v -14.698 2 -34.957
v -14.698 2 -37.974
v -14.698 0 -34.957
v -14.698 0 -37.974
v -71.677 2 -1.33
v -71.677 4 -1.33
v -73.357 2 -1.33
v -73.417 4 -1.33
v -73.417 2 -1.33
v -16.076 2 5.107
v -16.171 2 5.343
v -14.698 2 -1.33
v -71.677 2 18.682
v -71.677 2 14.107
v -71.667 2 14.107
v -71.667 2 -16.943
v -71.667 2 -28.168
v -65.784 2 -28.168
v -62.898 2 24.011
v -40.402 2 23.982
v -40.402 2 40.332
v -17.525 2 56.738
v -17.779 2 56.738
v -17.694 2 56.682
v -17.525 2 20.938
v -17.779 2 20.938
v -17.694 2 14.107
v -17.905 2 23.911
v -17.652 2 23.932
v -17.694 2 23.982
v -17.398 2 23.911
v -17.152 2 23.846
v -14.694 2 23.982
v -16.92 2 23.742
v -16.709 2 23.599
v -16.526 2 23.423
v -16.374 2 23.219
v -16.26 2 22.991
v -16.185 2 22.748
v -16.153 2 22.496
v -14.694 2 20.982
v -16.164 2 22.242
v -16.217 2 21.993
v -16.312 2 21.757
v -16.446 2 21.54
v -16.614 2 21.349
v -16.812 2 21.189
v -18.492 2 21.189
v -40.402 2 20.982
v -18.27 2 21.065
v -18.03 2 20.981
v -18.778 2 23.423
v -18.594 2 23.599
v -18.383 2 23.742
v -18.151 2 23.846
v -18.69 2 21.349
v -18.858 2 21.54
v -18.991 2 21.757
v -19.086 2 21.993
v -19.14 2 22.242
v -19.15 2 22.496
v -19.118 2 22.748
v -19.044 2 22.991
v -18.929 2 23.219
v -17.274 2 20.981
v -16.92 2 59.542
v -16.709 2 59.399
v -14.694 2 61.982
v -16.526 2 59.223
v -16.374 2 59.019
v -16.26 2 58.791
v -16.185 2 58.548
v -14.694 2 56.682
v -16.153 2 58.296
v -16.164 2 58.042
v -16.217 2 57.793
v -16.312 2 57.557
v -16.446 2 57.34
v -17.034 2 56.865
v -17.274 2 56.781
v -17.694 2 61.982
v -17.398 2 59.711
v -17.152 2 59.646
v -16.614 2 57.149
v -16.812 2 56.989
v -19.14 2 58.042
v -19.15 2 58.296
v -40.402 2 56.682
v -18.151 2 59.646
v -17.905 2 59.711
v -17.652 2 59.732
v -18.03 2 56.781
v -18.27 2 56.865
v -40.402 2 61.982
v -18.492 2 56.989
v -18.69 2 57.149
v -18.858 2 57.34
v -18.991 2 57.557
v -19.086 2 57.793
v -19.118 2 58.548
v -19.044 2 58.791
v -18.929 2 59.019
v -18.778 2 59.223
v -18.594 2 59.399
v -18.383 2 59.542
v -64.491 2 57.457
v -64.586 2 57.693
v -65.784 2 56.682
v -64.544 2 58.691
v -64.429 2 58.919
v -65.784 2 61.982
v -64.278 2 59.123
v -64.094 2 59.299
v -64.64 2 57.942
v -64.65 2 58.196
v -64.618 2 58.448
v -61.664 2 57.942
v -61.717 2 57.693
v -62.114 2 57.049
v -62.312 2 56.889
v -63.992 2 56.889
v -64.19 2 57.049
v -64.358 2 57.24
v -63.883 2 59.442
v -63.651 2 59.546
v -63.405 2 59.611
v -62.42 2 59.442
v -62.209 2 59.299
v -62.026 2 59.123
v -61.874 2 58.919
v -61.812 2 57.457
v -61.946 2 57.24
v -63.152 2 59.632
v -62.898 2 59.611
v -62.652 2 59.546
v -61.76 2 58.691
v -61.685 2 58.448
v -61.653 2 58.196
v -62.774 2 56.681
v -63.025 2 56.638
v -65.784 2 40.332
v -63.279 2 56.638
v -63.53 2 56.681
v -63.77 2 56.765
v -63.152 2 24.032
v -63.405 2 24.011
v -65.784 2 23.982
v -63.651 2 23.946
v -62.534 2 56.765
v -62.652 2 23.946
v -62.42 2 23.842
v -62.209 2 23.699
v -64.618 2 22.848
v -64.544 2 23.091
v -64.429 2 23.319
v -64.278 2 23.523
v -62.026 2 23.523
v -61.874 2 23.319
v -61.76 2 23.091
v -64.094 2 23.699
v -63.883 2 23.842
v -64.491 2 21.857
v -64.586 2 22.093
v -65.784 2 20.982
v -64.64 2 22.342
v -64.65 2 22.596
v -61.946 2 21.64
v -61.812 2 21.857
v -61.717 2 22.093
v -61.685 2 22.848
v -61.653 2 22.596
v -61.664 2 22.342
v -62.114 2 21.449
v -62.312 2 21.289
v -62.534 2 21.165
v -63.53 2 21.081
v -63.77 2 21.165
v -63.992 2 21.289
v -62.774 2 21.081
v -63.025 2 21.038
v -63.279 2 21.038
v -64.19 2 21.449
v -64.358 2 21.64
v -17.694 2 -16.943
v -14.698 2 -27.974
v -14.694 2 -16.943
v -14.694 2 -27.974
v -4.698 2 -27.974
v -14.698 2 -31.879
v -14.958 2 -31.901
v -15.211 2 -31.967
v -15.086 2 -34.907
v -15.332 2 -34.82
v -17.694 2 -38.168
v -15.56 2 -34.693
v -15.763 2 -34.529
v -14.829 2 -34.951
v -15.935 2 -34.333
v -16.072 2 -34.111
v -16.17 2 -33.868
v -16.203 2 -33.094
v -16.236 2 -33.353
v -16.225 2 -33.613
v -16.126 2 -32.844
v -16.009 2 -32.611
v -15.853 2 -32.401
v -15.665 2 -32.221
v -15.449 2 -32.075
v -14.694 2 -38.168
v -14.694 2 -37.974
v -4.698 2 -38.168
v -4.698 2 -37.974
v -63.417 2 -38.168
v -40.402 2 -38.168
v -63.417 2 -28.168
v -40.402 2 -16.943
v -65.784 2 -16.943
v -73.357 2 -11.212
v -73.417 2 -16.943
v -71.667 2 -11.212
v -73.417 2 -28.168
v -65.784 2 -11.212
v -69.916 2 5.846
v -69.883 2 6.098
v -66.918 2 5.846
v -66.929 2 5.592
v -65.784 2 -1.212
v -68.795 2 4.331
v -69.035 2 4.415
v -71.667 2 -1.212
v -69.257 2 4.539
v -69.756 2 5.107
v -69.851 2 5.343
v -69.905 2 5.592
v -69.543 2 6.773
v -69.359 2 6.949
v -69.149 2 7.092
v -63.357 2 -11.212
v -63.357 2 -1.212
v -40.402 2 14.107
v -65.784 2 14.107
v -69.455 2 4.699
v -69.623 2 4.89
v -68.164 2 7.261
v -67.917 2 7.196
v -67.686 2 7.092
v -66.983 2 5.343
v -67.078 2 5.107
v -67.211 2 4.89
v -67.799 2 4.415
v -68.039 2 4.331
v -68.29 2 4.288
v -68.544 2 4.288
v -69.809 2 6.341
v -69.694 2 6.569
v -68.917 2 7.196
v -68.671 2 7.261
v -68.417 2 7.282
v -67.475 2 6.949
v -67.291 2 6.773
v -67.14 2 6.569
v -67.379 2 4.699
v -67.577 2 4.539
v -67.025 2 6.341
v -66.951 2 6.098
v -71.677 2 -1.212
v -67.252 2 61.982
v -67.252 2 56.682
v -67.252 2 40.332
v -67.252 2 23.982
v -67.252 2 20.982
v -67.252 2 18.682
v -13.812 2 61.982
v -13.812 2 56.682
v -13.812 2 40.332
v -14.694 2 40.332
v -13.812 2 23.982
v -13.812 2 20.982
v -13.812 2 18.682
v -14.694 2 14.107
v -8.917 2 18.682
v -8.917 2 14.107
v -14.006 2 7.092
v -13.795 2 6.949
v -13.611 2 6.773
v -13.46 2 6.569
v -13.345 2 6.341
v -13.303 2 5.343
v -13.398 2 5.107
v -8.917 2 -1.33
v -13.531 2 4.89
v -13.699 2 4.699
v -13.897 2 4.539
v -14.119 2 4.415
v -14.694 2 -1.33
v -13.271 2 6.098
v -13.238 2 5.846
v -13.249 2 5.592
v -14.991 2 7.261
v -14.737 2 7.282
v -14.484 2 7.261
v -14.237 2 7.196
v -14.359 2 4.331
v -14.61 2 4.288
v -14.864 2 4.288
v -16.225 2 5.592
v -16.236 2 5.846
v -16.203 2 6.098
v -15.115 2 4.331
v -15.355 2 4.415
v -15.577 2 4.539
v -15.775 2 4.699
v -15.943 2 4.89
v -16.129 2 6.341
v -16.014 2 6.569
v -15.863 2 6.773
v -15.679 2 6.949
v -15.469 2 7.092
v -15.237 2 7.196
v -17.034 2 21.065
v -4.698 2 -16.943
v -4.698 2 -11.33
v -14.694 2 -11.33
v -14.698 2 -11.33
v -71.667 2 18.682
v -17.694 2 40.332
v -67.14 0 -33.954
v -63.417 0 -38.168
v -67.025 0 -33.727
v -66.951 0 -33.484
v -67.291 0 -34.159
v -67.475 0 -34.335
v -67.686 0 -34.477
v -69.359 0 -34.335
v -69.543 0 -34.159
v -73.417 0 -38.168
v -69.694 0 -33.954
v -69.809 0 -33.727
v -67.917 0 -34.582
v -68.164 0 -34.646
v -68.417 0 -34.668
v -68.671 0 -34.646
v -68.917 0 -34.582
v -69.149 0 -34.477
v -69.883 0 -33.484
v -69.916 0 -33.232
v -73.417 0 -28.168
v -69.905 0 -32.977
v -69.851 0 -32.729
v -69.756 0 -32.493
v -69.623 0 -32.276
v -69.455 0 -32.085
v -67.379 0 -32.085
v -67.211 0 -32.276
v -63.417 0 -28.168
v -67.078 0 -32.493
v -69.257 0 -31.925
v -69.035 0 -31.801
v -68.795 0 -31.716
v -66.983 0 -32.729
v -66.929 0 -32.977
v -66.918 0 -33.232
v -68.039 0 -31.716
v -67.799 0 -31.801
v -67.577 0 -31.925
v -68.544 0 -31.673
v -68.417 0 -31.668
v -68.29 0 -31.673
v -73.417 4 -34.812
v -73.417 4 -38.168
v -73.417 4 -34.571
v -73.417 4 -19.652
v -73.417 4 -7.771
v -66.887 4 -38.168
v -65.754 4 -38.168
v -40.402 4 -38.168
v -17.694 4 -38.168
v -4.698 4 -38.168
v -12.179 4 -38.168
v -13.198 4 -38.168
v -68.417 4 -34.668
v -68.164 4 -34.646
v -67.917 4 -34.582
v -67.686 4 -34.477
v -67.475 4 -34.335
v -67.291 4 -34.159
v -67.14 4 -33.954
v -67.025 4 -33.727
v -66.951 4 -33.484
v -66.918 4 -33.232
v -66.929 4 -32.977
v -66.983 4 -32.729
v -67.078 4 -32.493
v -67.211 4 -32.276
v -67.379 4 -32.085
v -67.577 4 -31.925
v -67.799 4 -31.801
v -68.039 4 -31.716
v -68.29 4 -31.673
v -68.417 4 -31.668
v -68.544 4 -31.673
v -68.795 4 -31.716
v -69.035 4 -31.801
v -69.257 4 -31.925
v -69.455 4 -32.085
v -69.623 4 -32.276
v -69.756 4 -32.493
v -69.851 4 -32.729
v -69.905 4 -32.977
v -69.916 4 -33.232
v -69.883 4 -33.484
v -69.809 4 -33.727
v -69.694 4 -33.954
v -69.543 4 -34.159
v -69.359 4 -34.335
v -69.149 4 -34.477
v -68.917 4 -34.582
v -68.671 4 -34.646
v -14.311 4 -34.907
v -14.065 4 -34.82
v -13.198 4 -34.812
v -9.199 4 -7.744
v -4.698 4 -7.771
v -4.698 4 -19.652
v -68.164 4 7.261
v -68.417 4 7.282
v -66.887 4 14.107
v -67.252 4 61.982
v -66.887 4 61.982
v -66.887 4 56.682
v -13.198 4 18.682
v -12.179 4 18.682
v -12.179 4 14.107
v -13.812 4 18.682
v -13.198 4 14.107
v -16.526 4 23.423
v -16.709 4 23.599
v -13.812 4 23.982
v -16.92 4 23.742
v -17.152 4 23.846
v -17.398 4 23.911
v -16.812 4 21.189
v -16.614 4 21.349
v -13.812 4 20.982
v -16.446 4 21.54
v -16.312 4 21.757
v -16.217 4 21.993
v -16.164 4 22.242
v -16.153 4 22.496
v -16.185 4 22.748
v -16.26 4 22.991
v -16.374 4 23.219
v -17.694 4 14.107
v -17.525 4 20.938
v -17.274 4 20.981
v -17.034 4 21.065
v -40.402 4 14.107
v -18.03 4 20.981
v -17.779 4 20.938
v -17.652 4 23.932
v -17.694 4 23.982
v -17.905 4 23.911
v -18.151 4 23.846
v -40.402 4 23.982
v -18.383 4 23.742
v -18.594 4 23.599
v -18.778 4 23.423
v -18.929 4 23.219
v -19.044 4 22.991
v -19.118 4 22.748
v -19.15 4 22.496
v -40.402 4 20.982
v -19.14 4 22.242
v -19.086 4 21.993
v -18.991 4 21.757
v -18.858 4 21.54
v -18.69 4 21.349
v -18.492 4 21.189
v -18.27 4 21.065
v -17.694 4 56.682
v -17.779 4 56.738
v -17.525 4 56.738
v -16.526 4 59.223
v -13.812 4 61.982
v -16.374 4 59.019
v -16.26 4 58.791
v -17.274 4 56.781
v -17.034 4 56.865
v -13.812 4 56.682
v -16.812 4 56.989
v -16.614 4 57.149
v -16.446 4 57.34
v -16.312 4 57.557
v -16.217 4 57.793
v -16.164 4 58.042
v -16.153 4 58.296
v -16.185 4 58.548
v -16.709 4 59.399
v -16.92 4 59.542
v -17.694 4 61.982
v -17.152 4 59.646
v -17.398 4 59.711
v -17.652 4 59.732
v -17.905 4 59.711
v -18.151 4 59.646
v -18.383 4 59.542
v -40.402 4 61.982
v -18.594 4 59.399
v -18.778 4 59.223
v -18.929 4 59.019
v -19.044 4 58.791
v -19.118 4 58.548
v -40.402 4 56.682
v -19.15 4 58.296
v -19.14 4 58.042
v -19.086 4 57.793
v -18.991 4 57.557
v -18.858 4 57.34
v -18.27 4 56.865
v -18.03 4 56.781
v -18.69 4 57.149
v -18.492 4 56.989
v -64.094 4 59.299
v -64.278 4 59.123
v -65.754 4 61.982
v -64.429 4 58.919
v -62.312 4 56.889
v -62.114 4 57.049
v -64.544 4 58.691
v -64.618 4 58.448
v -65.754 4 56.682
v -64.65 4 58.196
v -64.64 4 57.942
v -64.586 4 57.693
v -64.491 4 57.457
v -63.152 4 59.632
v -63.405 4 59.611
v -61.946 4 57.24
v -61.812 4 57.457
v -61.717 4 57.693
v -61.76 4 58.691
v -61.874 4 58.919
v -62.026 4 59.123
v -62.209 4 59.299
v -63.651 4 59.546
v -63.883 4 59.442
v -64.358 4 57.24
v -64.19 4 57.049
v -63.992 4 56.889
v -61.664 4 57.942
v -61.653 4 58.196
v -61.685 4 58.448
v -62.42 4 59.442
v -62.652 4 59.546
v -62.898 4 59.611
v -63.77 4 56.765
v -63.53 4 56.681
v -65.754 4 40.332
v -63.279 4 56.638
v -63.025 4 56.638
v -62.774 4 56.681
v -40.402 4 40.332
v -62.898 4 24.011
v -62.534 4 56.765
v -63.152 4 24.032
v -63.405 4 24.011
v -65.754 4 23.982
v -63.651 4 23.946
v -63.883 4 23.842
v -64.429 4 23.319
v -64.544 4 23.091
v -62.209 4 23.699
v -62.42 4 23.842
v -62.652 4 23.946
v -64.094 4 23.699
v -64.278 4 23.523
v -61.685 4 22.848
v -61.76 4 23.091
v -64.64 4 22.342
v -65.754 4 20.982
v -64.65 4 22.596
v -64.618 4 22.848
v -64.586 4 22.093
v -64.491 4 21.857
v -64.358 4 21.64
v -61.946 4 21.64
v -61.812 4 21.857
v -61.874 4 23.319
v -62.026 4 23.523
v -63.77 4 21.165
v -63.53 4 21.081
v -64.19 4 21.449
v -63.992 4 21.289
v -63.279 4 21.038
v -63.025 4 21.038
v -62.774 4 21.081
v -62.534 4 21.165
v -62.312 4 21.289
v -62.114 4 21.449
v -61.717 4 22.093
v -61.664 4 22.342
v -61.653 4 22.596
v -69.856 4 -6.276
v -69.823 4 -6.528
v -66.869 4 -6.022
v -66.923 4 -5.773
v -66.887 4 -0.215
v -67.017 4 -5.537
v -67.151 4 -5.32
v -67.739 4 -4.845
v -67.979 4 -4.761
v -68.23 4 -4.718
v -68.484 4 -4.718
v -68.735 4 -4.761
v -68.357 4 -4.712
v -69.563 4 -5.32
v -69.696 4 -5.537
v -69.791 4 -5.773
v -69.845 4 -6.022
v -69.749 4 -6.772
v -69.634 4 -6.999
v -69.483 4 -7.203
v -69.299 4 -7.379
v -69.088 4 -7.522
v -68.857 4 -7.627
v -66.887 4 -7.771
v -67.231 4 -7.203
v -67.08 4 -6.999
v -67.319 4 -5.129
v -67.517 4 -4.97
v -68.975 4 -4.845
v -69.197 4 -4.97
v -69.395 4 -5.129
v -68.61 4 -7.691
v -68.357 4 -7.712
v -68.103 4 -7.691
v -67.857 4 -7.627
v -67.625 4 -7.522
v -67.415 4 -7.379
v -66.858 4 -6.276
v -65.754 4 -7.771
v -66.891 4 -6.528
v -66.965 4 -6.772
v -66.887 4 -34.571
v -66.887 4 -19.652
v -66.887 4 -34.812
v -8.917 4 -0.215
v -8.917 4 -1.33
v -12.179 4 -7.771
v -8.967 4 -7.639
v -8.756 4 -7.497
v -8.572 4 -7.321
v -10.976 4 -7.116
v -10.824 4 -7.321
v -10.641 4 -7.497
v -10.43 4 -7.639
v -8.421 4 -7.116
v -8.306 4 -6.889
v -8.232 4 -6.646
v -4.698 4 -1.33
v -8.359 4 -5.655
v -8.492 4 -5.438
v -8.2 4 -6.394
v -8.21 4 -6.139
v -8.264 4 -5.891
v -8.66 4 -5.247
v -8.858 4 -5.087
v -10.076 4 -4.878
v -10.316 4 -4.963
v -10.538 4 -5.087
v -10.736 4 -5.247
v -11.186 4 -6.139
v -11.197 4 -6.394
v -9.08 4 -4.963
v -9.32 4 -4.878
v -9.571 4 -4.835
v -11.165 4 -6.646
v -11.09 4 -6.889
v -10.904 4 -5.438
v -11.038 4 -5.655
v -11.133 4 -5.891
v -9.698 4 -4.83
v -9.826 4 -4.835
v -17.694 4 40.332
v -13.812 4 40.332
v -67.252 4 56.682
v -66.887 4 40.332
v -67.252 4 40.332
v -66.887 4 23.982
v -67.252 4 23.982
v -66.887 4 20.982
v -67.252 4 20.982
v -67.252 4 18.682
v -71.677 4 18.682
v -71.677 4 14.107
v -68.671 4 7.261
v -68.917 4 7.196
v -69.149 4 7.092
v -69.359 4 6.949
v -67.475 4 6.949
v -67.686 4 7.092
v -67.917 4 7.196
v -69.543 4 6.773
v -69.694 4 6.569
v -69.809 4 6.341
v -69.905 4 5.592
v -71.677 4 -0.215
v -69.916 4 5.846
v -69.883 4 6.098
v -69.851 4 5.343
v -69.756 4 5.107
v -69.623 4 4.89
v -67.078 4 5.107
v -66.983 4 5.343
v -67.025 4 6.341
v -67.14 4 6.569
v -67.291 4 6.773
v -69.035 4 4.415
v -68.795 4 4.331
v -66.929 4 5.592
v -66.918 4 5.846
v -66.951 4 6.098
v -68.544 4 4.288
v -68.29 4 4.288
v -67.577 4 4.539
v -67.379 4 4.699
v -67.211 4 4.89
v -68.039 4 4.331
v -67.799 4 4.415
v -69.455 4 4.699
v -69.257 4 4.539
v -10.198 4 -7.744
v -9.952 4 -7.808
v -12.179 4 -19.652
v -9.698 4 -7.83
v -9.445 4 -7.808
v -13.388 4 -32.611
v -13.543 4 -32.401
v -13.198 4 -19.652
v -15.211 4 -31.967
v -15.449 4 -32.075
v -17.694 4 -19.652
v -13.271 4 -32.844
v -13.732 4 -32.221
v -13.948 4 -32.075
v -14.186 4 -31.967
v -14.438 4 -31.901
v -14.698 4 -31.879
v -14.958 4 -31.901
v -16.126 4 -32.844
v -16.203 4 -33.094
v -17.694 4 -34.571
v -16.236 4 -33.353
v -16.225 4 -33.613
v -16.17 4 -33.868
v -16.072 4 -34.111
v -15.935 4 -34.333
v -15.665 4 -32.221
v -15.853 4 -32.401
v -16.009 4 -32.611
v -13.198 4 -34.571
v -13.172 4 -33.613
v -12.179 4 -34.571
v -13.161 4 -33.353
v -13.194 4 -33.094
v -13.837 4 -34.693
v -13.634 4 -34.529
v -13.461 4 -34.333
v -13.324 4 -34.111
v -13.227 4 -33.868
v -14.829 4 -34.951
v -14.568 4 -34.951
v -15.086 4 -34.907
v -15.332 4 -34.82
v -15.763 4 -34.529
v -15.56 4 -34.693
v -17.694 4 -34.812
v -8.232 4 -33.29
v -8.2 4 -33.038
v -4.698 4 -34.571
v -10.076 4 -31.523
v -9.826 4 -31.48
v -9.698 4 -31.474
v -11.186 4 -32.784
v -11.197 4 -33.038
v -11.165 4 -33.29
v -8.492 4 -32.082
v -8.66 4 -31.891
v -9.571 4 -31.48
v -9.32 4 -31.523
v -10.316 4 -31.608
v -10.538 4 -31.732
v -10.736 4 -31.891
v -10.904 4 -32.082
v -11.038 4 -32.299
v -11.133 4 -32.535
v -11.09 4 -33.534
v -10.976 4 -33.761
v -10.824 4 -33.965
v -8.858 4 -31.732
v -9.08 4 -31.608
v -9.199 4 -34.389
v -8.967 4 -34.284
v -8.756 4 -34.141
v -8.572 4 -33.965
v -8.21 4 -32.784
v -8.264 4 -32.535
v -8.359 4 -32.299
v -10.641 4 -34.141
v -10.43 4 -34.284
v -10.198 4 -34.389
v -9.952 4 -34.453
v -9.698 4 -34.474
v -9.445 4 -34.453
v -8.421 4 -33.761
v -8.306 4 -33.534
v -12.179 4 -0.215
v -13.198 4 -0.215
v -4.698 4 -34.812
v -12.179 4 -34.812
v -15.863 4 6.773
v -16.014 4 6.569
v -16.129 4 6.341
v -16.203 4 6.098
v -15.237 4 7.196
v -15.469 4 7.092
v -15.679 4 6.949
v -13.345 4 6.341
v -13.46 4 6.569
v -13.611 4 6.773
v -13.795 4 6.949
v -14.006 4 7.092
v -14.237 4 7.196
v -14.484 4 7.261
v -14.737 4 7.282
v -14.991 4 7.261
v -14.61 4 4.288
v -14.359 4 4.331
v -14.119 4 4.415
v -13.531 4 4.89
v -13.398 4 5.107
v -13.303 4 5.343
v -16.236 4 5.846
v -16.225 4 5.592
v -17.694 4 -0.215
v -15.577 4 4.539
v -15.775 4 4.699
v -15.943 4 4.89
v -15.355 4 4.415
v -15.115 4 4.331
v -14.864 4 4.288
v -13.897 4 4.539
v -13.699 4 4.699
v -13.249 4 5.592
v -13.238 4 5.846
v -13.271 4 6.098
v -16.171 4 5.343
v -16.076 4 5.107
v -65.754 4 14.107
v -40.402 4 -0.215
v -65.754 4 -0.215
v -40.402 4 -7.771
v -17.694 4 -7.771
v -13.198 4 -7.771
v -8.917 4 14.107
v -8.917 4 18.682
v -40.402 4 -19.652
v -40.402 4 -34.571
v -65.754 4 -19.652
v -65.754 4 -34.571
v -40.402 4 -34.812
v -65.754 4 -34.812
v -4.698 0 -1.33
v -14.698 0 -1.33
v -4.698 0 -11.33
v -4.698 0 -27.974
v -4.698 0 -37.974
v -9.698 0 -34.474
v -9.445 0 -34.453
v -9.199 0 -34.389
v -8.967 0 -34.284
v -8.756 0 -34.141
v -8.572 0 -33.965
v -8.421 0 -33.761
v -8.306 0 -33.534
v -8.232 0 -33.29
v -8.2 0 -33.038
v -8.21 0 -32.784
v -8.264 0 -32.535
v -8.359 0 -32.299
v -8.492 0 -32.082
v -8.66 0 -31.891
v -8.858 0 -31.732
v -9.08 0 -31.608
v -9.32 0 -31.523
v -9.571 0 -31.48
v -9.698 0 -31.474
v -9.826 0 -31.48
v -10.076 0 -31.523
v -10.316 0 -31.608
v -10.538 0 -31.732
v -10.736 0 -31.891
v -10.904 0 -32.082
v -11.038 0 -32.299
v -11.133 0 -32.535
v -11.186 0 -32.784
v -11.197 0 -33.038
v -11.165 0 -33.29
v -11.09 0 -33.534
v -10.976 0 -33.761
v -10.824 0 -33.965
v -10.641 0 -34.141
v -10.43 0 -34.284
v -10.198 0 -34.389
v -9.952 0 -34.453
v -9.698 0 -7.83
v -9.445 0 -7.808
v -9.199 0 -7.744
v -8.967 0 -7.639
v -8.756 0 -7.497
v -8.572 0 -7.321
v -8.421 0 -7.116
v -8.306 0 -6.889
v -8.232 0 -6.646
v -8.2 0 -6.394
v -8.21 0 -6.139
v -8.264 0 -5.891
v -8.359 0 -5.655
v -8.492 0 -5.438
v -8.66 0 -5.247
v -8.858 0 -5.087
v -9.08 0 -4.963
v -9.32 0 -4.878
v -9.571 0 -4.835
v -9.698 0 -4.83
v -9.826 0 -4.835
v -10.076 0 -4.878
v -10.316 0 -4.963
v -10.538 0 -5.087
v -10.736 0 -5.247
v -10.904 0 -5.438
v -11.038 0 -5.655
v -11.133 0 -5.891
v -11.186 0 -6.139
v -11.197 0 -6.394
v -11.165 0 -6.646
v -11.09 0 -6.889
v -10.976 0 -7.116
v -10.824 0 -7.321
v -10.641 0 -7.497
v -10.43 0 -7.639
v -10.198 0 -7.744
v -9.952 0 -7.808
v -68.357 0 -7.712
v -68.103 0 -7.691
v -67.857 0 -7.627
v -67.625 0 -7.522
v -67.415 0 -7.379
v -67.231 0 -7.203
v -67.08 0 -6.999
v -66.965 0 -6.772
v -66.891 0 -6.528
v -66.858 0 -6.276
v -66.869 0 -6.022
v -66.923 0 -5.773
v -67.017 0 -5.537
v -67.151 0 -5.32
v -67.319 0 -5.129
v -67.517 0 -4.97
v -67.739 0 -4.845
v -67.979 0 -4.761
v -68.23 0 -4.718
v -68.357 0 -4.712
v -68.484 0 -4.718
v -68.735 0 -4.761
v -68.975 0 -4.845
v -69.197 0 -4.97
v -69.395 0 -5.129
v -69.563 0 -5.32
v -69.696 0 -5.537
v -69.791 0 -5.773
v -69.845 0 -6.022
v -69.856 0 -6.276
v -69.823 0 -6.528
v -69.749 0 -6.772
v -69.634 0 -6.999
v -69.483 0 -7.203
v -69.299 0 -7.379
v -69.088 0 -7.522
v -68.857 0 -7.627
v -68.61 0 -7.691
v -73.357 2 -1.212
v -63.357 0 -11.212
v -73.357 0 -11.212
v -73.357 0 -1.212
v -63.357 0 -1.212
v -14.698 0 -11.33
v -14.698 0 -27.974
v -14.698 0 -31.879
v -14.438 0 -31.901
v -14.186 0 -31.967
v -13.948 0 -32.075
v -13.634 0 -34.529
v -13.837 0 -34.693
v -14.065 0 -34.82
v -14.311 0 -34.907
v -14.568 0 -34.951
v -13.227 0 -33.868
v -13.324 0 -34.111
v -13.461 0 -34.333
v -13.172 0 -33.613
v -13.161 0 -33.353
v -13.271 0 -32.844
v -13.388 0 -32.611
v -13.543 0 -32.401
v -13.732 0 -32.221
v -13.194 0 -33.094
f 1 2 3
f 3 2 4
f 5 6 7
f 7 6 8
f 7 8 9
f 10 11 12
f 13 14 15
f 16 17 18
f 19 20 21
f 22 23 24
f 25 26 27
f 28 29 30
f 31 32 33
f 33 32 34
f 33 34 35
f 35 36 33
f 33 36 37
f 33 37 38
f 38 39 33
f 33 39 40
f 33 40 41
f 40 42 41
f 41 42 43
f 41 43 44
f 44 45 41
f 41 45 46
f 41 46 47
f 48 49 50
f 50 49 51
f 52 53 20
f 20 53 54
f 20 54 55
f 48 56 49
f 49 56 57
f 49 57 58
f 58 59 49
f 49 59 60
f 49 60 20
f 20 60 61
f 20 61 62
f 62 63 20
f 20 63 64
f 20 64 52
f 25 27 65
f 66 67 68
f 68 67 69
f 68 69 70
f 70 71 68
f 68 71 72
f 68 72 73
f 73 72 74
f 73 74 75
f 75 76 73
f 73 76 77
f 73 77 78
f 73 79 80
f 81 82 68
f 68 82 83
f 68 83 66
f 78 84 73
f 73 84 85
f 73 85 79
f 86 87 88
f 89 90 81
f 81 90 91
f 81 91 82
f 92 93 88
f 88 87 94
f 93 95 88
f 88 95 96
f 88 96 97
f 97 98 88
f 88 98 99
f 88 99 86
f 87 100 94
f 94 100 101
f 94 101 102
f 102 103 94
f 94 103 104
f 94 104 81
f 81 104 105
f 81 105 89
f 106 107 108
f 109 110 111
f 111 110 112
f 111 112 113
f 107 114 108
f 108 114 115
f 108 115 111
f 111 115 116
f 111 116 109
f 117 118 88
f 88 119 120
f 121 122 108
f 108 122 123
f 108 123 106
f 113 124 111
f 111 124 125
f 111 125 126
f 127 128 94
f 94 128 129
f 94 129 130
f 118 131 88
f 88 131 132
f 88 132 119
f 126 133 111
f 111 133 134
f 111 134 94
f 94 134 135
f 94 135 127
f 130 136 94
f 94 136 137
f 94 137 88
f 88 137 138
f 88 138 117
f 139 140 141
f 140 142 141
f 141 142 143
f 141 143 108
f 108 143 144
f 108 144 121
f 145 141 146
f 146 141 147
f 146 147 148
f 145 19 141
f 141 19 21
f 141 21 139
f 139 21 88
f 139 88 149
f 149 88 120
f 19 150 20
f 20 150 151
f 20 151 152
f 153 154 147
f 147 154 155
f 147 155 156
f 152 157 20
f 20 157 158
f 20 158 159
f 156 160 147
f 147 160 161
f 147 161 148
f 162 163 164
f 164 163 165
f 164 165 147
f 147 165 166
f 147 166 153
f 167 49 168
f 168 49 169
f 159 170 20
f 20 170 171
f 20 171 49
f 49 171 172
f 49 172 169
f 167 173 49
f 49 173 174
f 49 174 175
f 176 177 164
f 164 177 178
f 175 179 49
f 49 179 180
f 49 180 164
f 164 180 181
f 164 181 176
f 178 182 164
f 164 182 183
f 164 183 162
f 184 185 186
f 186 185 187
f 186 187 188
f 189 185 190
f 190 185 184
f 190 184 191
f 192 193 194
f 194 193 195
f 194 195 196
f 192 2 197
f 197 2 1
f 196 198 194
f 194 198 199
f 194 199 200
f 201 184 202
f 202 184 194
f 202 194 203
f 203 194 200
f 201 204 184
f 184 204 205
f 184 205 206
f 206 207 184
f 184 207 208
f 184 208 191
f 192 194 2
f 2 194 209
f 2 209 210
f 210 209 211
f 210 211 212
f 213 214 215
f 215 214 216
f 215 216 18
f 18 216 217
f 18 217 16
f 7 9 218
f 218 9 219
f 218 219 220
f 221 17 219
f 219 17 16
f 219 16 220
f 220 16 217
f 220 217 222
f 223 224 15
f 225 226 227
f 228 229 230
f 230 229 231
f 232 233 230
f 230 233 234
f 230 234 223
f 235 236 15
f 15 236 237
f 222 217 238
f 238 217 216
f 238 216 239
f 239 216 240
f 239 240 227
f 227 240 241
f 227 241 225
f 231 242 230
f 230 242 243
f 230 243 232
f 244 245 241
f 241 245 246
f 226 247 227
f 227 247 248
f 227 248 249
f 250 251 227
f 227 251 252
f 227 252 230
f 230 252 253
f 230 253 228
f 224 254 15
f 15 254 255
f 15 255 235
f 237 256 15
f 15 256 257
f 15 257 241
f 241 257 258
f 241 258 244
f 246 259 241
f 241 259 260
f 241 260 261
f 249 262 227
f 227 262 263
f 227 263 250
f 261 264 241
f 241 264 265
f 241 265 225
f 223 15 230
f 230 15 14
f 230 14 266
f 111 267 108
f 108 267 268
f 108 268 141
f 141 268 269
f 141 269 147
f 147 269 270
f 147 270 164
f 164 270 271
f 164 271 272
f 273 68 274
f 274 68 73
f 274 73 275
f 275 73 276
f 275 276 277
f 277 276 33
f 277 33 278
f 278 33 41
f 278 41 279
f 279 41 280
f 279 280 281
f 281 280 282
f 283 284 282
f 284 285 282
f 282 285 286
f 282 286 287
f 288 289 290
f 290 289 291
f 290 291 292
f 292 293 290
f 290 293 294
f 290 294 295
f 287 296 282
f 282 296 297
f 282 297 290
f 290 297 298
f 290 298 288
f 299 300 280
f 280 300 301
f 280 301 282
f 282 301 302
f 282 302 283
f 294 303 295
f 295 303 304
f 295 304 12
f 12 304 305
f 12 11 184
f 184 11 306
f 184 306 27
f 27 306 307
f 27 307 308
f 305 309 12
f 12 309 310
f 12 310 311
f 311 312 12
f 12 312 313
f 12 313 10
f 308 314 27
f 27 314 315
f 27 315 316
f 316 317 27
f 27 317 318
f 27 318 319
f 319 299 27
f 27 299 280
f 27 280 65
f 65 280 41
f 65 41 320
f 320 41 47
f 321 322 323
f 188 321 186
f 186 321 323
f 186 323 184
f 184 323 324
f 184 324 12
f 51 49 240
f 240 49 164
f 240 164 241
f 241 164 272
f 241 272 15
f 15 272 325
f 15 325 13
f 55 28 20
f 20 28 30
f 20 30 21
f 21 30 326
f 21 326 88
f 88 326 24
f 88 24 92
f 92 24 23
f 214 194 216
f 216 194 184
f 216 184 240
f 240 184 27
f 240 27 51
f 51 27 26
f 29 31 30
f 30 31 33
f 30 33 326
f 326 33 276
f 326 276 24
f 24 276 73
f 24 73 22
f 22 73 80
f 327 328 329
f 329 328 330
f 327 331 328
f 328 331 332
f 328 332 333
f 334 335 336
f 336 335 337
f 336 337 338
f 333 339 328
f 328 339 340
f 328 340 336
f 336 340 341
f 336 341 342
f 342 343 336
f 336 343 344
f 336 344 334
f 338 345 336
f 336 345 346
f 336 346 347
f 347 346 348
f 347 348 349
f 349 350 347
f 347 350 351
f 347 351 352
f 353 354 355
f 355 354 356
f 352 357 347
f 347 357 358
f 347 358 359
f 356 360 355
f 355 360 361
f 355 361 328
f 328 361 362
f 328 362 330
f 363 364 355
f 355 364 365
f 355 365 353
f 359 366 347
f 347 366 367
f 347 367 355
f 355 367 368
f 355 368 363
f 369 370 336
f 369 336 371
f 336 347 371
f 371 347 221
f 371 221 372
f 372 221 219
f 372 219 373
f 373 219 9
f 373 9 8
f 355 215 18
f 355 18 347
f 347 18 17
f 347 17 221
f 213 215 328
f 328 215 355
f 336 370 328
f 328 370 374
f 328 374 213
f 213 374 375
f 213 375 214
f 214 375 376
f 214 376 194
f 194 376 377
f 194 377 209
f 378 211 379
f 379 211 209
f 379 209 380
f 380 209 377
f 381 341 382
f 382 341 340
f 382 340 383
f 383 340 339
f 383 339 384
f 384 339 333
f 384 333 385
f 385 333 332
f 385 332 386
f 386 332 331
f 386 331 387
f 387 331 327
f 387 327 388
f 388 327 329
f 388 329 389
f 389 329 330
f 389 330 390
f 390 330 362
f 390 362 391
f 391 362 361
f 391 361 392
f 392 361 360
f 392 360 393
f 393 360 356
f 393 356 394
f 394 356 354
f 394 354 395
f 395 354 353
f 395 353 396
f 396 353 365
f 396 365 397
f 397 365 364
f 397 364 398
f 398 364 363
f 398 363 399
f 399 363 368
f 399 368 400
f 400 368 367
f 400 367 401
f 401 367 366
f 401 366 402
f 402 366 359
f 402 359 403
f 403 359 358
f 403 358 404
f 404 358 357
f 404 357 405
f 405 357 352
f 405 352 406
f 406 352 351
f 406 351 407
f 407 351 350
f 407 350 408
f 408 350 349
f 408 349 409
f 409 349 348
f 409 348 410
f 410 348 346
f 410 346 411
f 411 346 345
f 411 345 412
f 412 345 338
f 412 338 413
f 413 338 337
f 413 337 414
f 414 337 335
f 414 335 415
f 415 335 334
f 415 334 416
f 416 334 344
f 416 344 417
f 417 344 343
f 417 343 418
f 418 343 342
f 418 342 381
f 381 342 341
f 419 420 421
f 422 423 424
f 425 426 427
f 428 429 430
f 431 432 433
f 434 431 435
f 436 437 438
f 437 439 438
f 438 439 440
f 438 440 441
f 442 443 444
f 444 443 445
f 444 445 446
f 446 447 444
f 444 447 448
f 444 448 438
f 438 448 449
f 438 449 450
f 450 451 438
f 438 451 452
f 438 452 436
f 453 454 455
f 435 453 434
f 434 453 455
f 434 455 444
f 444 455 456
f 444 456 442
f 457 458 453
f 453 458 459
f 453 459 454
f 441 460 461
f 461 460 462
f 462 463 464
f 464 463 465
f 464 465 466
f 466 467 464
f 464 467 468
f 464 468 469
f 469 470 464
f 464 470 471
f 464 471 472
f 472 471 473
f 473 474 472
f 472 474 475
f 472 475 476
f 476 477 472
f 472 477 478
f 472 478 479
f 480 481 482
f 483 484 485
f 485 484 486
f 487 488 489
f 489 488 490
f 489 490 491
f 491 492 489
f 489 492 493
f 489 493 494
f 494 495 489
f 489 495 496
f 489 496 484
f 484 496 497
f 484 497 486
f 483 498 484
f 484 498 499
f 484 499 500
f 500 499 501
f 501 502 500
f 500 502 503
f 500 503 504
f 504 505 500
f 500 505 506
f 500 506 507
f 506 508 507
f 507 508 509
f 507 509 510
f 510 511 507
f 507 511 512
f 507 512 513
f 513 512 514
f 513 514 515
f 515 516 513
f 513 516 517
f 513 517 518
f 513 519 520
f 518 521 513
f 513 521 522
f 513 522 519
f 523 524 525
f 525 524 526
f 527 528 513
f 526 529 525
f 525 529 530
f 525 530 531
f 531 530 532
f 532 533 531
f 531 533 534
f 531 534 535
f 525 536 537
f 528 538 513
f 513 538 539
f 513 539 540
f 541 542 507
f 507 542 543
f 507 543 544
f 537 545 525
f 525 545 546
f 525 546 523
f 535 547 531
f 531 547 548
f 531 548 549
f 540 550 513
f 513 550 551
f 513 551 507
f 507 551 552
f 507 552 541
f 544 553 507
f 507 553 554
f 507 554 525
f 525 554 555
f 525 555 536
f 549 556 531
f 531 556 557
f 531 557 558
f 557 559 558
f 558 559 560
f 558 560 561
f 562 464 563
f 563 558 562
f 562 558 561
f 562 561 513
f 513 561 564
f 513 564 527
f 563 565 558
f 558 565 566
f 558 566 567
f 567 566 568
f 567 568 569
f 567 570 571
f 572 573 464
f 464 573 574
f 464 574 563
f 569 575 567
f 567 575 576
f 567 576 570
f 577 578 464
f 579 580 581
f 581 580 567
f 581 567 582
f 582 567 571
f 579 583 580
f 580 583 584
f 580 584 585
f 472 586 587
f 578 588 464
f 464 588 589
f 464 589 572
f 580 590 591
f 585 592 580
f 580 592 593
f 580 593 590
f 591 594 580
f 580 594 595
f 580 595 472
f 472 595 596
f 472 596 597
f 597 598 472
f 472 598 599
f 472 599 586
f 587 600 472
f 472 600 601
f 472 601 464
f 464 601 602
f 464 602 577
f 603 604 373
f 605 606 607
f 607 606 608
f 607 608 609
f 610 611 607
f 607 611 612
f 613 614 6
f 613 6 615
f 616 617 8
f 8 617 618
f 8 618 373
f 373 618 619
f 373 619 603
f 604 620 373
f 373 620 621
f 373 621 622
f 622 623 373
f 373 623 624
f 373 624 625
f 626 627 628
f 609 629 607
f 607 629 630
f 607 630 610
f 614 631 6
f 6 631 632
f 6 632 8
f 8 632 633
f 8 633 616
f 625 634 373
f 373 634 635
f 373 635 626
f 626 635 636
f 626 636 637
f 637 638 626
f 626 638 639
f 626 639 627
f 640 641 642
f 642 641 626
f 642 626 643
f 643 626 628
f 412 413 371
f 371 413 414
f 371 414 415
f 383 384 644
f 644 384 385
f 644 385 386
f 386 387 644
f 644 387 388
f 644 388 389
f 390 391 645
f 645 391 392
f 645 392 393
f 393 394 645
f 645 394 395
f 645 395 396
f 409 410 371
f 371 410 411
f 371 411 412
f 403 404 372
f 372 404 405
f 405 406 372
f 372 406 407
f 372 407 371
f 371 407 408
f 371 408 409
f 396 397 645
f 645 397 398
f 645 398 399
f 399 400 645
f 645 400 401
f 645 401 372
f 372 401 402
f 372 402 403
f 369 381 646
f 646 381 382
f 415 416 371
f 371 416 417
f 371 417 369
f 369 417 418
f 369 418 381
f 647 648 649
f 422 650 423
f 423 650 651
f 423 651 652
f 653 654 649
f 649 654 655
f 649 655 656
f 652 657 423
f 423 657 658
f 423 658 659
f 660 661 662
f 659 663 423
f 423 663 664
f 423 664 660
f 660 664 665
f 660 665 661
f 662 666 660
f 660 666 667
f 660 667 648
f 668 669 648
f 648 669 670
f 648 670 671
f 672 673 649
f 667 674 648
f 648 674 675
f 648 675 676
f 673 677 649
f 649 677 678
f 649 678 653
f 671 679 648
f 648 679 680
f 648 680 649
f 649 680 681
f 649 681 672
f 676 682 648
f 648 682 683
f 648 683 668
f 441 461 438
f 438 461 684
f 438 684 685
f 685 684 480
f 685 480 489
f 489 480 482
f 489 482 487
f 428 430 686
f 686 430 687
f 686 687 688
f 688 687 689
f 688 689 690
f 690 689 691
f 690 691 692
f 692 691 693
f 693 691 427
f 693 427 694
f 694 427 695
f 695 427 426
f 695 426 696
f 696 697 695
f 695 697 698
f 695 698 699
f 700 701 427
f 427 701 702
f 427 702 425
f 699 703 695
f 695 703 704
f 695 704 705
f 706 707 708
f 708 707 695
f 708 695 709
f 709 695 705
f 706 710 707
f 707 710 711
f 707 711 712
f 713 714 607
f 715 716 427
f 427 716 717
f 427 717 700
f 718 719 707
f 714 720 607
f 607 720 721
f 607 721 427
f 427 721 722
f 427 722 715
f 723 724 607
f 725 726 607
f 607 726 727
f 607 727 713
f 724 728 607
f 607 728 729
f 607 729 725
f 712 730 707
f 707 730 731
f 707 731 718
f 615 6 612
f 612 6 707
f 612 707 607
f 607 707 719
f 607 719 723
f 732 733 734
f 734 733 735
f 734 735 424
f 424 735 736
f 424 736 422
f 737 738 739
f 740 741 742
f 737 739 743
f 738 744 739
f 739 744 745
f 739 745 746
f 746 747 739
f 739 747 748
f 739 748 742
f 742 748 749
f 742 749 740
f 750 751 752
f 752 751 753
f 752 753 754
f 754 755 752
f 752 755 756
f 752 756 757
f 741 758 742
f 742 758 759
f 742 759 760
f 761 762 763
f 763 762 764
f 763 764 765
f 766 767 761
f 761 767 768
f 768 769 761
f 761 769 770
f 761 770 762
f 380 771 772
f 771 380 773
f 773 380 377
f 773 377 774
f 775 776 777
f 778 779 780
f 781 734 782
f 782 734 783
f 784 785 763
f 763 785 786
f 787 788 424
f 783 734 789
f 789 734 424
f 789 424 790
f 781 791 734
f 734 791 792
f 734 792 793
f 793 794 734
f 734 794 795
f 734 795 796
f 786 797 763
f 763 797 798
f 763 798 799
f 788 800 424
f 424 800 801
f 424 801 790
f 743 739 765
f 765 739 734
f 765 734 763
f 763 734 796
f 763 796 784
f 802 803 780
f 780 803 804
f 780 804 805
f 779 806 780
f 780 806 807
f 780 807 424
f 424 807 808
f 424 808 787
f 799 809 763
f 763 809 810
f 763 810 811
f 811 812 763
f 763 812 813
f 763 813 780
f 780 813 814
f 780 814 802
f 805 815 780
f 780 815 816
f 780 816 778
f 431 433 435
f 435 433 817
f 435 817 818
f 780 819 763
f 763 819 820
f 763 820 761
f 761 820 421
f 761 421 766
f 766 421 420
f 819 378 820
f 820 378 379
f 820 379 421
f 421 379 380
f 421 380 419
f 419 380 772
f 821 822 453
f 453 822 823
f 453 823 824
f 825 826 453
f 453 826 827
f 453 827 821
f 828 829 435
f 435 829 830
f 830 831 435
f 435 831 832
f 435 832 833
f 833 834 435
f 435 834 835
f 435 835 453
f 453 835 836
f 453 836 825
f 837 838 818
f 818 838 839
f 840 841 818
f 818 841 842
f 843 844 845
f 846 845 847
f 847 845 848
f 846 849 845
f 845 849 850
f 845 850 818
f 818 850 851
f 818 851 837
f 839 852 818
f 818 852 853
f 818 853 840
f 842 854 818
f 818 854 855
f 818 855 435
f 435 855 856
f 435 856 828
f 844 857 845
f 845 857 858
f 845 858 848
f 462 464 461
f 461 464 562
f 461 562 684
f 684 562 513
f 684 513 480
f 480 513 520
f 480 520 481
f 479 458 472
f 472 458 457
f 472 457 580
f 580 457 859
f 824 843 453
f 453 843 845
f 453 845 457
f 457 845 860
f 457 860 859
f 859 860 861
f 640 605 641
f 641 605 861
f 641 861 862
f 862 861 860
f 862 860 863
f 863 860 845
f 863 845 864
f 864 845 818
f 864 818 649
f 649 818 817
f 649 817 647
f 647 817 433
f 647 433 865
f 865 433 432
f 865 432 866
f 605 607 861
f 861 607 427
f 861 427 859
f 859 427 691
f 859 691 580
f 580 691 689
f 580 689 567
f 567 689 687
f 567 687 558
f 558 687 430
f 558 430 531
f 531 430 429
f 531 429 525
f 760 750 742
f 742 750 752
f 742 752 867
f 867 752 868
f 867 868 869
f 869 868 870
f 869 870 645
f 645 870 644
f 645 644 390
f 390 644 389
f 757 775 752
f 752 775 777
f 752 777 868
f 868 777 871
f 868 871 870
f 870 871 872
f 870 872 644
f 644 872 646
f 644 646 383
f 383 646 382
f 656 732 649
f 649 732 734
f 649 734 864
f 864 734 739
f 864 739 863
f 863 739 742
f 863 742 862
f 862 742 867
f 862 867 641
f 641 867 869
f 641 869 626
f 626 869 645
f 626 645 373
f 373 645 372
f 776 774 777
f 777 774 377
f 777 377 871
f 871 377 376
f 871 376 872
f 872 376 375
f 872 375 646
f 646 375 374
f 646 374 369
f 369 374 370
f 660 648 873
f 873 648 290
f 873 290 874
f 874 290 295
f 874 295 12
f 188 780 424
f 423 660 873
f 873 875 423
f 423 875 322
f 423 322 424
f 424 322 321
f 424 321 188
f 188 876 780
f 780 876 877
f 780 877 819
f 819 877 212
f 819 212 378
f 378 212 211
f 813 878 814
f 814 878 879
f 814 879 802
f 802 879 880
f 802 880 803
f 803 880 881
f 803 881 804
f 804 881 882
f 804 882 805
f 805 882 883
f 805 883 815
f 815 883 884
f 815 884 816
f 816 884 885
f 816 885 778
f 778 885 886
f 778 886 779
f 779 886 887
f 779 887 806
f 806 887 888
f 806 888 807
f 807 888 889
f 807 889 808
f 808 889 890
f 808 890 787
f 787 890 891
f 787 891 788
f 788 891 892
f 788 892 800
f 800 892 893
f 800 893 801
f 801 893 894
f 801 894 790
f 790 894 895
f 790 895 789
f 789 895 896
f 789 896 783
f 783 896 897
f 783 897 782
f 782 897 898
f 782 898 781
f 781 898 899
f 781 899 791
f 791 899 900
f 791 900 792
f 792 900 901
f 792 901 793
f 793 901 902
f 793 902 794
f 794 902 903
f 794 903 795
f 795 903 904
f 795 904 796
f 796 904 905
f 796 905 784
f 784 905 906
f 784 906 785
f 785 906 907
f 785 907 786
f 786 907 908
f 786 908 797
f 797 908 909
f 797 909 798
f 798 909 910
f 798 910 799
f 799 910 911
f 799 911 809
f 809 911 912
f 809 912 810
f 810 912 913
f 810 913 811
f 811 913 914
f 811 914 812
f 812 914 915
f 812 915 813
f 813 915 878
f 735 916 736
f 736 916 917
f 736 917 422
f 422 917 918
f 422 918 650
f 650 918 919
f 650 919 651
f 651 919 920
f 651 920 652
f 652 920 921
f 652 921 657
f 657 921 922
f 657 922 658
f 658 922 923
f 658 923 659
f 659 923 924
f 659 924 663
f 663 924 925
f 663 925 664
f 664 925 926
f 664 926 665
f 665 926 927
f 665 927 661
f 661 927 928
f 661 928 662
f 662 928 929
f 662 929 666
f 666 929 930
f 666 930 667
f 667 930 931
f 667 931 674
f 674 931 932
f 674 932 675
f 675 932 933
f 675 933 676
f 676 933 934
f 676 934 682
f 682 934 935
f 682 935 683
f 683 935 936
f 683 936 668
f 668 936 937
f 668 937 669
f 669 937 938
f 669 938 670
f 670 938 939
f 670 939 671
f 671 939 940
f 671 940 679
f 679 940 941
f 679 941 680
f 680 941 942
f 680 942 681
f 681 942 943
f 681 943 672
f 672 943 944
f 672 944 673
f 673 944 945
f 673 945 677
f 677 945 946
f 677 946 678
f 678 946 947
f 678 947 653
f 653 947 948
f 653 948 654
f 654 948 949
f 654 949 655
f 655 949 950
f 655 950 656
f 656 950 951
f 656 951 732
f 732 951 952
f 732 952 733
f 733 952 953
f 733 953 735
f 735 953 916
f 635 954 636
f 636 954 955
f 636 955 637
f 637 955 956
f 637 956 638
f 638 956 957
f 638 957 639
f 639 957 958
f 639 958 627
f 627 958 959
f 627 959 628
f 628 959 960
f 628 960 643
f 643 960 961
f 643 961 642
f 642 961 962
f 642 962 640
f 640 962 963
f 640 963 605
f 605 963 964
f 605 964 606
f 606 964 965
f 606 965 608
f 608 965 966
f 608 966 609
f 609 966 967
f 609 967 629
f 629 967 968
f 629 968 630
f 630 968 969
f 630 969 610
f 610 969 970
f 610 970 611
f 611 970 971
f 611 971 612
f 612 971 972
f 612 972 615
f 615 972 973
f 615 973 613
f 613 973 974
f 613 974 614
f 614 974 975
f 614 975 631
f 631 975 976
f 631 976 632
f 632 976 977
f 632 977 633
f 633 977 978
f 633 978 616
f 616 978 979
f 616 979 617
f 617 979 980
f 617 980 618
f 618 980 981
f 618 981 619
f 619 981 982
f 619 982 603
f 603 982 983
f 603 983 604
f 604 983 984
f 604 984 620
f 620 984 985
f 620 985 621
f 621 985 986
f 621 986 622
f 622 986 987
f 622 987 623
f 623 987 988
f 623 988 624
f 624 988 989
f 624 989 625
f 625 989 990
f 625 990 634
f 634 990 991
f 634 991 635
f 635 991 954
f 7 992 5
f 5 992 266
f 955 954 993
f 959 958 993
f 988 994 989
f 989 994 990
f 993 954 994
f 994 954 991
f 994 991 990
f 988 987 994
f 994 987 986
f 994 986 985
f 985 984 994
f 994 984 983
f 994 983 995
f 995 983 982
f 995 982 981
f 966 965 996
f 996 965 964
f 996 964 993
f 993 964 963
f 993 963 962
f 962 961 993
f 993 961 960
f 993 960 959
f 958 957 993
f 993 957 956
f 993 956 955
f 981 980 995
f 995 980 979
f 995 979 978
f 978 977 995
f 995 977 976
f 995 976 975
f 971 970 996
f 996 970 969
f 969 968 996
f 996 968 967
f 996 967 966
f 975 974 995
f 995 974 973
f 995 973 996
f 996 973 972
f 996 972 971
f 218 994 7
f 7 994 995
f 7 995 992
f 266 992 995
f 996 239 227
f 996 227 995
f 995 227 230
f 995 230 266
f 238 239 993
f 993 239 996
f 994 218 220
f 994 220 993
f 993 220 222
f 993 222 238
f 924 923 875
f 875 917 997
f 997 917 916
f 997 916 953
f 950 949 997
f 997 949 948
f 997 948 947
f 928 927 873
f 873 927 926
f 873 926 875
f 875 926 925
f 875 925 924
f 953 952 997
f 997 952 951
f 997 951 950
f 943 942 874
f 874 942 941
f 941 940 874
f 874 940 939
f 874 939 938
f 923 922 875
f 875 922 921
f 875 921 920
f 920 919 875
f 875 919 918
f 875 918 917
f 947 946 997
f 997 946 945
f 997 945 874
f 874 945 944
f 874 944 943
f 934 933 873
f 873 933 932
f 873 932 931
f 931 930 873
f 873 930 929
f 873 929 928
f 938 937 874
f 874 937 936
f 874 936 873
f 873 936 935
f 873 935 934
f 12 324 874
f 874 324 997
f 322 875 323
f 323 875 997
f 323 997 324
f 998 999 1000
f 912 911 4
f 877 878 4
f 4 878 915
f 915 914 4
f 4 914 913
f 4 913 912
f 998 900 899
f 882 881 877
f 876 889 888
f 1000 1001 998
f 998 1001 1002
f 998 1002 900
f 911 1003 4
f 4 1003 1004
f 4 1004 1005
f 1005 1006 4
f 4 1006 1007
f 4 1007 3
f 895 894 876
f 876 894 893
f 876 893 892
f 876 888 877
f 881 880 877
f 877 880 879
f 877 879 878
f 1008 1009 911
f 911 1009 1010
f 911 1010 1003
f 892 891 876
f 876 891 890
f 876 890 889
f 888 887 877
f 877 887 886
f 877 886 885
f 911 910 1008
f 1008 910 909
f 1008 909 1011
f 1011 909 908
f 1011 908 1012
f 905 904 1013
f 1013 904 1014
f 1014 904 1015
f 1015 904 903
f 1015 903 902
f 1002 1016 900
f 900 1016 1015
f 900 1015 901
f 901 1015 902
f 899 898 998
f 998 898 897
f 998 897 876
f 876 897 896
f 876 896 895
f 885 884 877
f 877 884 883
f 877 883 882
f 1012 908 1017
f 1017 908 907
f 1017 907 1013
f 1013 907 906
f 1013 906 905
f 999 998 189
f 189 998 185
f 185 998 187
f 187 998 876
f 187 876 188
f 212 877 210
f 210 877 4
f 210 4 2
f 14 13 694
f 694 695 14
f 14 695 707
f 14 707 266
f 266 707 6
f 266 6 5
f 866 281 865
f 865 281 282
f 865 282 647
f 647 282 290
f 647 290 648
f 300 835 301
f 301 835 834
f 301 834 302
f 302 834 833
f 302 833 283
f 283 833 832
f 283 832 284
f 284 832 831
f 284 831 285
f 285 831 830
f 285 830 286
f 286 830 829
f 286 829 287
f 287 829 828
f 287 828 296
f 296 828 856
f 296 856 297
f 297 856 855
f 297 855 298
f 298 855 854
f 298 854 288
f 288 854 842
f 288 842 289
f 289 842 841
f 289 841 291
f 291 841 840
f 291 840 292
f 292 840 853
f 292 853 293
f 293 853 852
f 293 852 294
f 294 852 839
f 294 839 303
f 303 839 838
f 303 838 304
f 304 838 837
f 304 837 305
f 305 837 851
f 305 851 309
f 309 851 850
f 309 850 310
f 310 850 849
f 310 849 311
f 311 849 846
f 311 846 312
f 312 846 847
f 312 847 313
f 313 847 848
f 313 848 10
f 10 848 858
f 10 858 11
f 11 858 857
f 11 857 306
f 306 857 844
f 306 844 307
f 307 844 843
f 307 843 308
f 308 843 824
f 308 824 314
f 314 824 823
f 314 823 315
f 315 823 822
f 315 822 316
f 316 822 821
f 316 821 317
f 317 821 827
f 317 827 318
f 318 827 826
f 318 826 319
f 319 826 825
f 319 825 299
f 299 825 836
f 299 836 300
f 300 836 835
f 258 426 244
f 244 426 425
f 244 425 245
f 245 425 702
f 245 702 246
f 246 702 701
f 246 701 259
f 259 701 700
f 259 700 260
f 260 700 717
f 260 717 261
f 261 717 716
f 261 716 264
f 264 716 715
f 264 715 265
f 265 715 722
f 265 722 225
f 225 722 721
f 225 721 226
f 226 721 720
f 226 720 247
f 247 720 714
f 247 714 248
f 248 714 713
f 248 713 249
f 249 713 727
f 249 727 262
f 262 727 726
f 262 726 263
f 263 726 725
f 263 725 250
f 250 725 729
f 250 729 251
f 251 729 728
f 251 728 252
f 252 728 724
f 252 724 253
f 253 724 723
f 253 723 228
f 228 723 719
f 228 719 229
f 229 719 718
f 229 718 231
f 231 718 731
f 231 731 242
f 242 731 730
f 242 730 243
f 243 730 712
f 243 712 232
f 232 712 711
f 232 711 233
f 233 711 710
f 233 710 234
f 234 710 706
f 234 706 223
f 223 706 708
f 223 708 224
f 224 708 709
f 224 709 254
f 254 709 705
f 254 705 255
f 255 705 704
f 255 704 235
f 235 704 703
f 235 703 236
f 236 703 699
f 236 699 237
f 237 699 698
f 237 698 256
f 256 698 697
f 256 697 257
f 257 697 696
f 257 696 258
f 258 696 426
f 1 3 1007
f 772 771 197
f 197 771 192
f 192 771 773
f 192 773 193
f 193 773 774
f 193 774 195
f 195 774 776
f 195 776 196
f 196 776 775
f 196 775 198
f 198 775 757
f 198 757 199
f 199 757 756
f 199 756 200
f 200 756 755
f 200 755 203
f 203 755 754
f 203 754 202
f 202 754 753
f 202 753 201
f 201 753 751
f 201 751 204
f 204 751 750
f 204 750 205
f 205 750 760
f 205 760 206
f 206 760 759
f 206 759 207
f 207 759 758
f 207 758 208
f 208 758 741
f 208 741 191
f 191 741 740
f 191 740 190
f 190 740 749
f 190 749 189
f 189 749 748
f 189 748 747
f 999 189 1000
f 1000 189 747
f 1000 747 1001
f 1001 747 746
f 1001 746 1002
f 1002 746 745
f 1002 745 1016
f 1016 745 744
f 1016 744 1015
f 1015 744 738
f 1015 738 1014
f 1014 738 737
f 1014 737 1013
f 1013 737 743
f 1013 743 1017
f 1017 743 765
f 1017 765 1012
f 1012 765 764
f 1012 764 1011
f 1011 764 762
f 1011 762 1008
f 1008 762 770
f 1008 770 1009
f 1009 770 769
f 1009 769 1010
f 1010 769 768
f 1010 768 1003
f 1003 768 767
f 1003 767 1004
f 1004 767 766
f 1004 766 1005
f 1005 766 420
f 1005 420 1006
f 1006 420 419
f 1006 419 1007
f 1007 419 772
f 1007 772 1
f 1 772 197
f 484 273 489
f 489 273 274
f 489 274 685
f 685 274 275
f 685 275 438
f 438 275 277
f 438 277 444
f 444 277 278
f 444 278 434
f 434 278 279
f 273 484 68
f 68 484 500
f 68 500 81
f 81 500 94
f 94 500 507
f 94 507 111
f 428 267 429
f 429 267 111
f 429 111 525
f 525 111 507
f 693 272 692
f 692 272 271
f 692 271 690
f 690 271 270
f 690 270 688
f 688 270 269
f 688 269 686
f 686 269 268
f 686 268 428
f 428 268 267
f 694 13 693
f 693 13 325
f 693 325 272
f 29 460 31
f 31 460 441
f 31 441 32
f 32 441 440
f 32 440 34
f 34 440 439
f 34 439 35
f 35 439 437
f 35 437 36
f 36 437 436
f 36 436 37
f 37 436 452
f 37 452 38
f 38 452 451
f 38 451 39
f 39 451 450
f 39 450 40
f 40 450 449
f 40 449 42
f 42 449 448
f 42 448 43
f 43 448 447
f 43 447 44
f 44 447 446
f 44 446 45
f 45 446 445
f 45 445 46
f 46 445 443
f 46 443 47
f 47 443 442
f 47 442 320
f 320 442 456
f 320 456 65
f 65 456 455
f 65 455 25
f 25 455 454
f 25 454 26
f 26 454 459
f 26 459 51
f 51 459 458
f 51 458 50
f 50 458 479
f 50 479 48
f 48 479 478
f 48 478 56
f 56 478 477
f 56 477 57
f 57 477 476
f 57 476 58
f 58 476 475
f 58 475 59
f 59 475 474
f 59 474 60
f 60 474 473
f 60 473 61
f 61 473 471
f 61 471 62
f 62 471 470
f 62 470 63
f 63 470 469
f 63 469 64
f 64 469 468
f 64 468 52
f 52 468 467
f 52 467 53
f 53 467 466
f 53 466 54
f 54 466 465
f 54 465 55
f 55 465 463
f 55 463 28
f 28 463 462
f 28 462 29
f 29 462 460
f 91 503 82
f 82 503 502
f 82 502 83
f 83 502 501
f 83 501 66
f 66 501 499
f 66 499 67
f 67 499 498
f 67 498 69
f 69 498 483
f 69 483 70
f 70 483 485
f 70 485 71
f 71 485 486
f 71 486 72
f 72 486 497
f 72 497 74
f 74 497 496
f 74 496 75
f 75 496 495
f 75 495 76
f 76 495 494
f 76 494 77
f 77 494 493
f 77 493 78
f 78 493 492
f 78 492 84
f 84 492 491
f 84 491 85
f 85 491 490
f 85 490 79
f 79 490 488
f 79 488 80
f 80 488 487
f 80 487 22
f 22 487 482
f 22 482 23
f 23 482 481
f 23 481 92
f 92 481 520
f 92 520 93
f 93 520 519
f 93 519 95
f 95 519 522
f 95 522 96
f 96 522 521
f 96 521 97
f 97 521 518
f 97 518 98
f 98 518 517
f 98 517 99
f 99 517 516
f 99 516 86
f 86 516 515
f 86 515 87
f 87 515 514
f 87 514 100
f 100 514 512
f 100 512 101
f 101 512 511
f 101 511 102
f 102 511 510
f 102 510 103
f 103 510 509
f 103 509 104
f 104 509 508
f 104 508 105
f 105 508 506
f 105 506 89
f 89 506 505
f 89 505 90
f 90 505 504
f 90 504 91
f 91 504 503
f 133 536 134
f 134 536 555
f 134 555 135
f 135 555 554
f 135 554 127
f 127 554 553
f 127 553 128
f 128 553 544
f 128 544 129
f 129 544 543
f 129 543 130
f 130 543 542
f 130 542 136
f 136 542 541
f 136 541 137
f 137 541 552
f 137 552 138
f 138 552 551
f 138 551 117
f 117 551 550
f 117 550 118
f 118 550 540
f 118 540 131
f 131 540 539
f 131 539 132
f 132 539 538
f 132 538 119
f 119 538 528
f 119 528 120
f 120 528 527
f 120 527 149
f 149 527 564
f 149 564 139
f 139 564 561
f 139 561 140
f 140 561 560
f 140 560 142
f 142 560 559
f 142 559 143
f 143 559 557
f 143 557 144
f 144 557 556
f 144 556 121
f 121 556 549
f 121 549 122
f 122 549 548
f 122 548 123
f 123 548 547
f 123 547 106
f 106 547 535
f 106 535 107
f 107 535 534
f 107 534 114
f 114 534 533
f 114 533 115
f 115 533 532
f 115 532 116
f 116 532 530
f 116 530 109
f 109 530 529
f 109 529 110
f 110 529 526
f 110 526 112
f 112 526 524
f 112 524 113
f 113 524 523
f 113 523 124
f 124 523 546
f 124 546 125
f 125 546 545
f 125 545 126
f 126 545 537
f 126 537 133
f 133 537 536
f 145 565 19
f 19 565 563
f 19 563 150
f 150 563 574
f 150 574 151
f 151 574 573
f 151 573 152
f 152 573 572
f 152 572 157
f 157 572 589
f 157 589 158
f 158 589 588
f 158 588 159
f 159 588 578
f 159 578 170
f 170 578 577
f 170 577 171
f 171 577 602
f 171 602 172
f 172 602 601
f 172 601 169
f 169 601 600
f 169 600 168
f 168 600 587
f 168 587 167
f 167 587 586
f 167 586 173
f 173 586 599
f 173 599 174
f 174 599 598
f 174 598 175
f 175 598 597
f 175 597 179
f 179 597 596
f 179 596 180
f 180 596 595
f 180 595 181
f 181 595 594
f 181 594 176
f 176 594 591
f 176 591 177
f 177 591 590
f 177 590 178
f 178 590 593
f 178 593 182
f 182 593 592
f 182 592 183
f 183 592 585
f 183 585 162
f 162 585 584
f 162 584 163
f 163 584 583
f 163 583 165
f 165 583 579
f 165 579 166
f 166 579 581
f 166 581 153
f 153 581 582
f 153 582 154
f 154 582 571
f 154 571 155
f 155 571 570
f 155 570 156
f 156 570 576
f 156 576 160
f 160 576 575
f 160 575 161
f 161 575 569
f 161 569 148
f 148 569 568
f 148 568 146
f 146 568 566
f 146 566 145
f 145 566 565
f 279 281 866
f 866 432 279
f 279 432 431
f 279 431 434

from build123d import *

# Parameters (mm, degrees)
SKETCH1_W             = 10
SKETCH1_H             = 10
SKETCH1_R             = 1.5
BOSS_EXTRUDE1_DEPTH   = 2
BOSS_EXTRUDE1_2_DEPTH = 2
BOSS_EXTRUDE1_3_DEPTH = 2
BOSS_EXTRUDE1_4_DEPTH = 2
SKETCH2_W             = 68.718732211
SKETCH2_H             = 36.837925628
SKETCH2_R             = 1.5
BOSS_EXTRUDE2_DEPTH   = 2
SKETCH3_W             = 62.76
SKETCH3_H             = 45
SKETCH3_R             = 1.5
BOSS_EXTRUDE3_DEPTH   = 2
SKETCH4_R             = 1.5
CUT_EXTRUDE1_DEPTH    = 2
SKETCH5_R             = 1.5
CUT_EXTRUDE2_DEPTH    = 2
SKETCH6_R             = 1.538732211
CUT_EXTRUDE3_DEPTH    = 4
SKETCH7_W             = 53.44
SKETCH7_H             = 43.3
SKETCH7_R             = 1.5
BOSS_EXTRUDE4_DEPTH   = 2


with BuildPart() as part:
    # Sketch1 → Boss-Extrude1 (new body)
    with BuildSketch(Plane(origin=(0, 0, 0), x_dir=(1, 0, 0), z_dir=(0, 1, 0))):
        with Locations((-68.417052022, 33.167885028)):
            Rectangle(SKETCH1_W, SKETCH1_H)
        with Locations((-68.417052022, 33.167885028)):
            Circle(SKETCH1_R, mode=Mode.SUBTRACT)
    extrude(amount=BOSS_EXTRUDE1_DEPTH)



with BuildPart() as body_2:
    # Sketch1 → Boss-Extrude1 2 (new body)
    with BuildSketch(Plane(origin=(0, 0, 0), x_dir=(1, 0, 0), z_dir=(0, 1, 0))):
        with Locations((-68.356859369, 6.212274972)):
            Rectangle(SKETCH1_W, SKETCH1_H)
        with Locations((-68.356859369, 6.212274972)):
            Circle(SKETCH1_R, mode=Mode.SUBTRACT)
    extrude(amount=BOSS_EXTRUDE1_2_DEPTH)


with BuildPart() as body_3:
    # Sketch1 → Boss-Extrude1 3 (new body)
    with BuildSketch(Plane(origin=(0, 0, 0), x_dir=(1, 0, 0), z_dir=(0, 1, 0))):
        with Locations((-9.698319811, 6.3299594)):
            Rectangle(SKETCH1_W, SKETCH1_H)
        with Locations((-9.698319811, 6.3299594)):
            Circle(SKETCH1_R, mode=Mode.SUBTRACT)
    extrude(amount=BOSS_EXTRUDE1_3_DEPTH)


with BuildPart() as body_4:
    # Sketch1 → Boss-Extrude1 4 (new body)
    with BuildSketch(Plane(origin=(0, 0, 0), x_dir=(1, 0, 0), z_dir=(0, 1, 0))):
        with Locations((-9.698319811, 32.974349344)):
            Rectangle(SKETCH1_W, SKETCH1_H)
        with Locations((-9.698319811, 32.974349344)):
            Circle(SKETCH1_R, mode=Mode.SUBTRACT)
    extrude(amount=BOSS_EXTRUDE1_4_DEPTH)


with BuildPart() as part_1:
    add(part.part)

    add(body_2.part)  # Boss-Extrude2 merges body 2

    add(body_3.part)  # Boss-Extrude2 merges body 3

    add(body_4.part)  # Boss-Extrude2 merges body 4
    # Sketch2 → Boss-Extrude2 (add)
    with BuildSketch(Plane(origin=(0, 2, 0), x_dir=(1, 0, 0), z_dir=(0, 1, 0))):
        with Locations((-39.057685917, 19.748922214)):
            Rectangle(SKETCH2_W, SKETCH2_H)
        with Locations((-68.417052022, 33.167885028)):
            Circle(SKETCH2_R, mode=Mode.SUBTRACT)
        with Locations((-9.698319811, 32.974349344)):
            Circle(SKETCH2_R, mode=Mode.SUBTRACT)
        with Locations((-9.698319811, 6.3299594)):
            Circle(SKETCH2_R, mode=Mode.SUBTRACT)
        with Locations((-68.356859369, 6.212274972)):
            Circle(SKETCH2_R, mode=Mode.SUBTRACT)
    extrude(amount=BOSS_EXTRUDE2_DEPTH)

    # Sketch3 → Boss-Extrude3 (add)
    with BuildSketch(Plane(origin=(0, 4, 0), x_dir=(1, 0, 0), z_dir=(0, 1, 0))):
        with Locations((-40.297052022, 13.817885028)):
            Rectangle(SKETCH3_W, SKETCH3_H)
        with Locations((-68.417052022, 33.167885028)):
            Circle(SKETCH3_R, mode=Mode.SUBTRACT)
        with Locations((-68.356859369, 6.212274972)):
            Circle(SKETCH3_R, mode=Mode.SUBTRACT)
    extrude(amount=-BOSS_EXTRUDE3_DEPTH)

    # Sketch4 → Cut-Extrude1 (cut)
    with BuildSketch(Plane(origin=(0, 4, 0), x_dir=(1, 0, 0), z_dir=(0, 1, 0))):
        with Locations((-9.698319811, 6.3299594)):
            Circle(SKETCH4_R)
        with Locations((-9.698319811, 32.974349344)):
            Circle(SKETCH4_R)
    extrude(amount=-CUT_EXTRUDE1_DEPTH, mode=Mode.SUBTRACT)

    # Sketch5 → Cut-Extrude2 (cut)
    with BuildSketch(Plane(origin=(0, 4, 0), x_dir=(1, 0, 0), z_dir=(0, 1, 0))):
        with Locations((-68.417052022, -5.782114972)):
            Circle(SKETCH5_R)
        with Locations((-14.737052022, -5.782114972)):
            Circle(SKETCH5_R)
        with Locations((-14.737052022, 33.417885028)):
            Circle(SKETCH5_R)
    extrude(amount=-CUT_EXTRUDE2_DEPTH, mode=Mode.SUBTRACT)

    # Sketch6 → Cut-Extrude3 (cut)
    with BuildSketch(Plane(origin=(0, 4, 0), x_dir=(1, 0, 0), z_dir=(0, 1, 0))):
        with Locations((-14.698319811, 33.417885028)):
            Circle(SKETCH6_R)
    extrude(amount=-CUT_EXTRUDE3_DEPTH, mode=Mode.SUBTRACT)

    # Sketch7 → Boss-Extrude4 (add)
    with BuildSketch(Plane(origin=(0, 4, 0), x_dir=(1, 0, 0), z_dir=(0, 1, 0))):
        with Locations((-40.531724845, -40.332114972)):
            Rectangle(SKETCH7_W, SKETCH7_H)
        with Locations((-63.151724845, -22.532114972)):
            Circle(SKETCH7_R, mode=Mode.SUBTRACT)
        with Locations((-63.151724845, -58.132114972)):
            Circle(SKETCH7_R, mode=Mode.SUBTRACT)
        with Locations((-17.651724845, -58.232114972)):
            Circle(SKETCH7_R, mode=Mode.SUBTRACT)
        with Locations((-17.651724845, -22.432114972)):
            Circle(SKETCH7_R, mode=Mode.SUBTRACT)
        Polygon((-71.677052022, -18.682114972), (-67.251724845, -18.682114972), (-13.811724845, -18.682114972), (-8.917052022, -18.682114972), (-8.917052022, -8.682114972), (-71.677052022, -8.682114972), align=None)
    extrude(amount=-BOSS_EXTRUDE4_DEPTH)


solid = part_1.part
